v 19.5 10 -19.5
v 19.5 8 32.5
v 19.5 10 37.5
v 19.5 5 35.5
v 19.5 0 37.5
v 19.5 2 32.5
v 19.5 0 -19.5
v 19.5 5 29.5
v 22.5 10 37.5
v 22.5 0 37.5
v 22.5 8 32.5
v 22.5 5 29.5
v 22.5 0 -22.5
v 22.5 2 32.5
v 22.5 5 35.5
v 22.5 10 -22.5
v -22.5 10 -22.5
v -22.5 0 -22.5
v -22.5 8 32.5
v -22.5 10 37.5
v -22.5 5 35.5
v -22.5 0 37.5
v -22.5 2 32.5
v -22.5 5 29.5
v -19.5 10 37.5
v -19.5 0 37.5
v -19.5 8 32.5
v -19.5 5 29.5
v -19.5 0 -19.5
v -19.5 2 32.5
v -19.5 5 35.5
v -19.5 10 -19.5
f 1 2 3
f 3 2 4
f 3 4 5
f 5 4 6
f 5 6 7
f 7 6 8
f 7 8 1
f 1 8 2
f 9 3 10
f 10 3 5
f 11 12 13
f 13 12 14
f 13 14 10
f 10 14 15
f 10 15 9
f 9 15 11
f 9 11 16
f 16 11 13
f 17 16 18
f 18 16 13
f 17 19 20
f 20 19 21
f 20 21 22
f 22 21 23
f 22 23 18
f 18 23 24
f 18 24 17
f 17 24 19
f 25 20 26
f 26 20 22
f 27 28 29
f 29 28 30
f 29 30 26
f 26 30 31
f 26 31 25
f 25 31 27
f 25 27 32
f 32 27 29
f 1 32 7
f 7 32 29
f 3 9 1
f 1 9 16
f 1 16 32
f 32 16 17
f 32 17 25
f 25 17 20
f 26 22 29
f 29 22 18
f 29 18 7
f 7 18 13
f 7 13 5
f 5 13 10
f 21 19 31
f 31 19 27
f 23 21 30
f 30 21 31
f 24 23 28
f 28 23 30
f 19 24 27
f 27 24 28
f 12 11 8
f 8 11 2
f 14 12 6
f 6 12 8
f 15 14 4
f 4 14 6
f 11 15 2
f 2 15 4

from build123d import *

# Parameters (mm, degrees)
SKETCH1_W           = 3
SKETCH1_H           = 15
BOSS_EXTRUDE1_DEPTH = 10
CUT_EXTRUDE1_DEPTH  = 60.42432162


with BuildPart() as part:
    # Sketch1 → Boss-Extrude1 (new body)
    with BuildSketch(Plane(origin=(0, 0, 0), x_dir=(1, 0, 0), z_dir=(0, 1, 0))):
        Polygon((19.5, -19.5), (19.5, 19.5), (-19.5, 19.5), (-19.5, -19.5), (-19.5, -22.5), (-22.5, -22.5), (-22.5, 22.5), (22.5, 22.5), (22.5, -22.5), (19.5, -22.5), align=None)
        with Locations((-21, -30)):
            Rectangle(SKETCH1_W, SKETCH1_H)
        with Locations((21, -30)):
            Rectangle(SKETCH1_W, SKETCH1_H)
    extrude(amount=BOSS_EXTRUDE1_DEPTH)

    # Sketch3 → Cut-Extrude1 (cut, through all)
    with BuildSketch(Plane(origin=(22.5, 0, 0), x_dir=(0, 0, -1), z_dir=(1, 0, 0))):
        Polygon((-32.5, 8), (-35.5, 5), (-32.5, 2), (-29.5, 5), align=None)
    extrude(amount=-CUT_EXTRUDE1_DEPTH, mode=Mode.SUBTRACT)


solid = part.part
